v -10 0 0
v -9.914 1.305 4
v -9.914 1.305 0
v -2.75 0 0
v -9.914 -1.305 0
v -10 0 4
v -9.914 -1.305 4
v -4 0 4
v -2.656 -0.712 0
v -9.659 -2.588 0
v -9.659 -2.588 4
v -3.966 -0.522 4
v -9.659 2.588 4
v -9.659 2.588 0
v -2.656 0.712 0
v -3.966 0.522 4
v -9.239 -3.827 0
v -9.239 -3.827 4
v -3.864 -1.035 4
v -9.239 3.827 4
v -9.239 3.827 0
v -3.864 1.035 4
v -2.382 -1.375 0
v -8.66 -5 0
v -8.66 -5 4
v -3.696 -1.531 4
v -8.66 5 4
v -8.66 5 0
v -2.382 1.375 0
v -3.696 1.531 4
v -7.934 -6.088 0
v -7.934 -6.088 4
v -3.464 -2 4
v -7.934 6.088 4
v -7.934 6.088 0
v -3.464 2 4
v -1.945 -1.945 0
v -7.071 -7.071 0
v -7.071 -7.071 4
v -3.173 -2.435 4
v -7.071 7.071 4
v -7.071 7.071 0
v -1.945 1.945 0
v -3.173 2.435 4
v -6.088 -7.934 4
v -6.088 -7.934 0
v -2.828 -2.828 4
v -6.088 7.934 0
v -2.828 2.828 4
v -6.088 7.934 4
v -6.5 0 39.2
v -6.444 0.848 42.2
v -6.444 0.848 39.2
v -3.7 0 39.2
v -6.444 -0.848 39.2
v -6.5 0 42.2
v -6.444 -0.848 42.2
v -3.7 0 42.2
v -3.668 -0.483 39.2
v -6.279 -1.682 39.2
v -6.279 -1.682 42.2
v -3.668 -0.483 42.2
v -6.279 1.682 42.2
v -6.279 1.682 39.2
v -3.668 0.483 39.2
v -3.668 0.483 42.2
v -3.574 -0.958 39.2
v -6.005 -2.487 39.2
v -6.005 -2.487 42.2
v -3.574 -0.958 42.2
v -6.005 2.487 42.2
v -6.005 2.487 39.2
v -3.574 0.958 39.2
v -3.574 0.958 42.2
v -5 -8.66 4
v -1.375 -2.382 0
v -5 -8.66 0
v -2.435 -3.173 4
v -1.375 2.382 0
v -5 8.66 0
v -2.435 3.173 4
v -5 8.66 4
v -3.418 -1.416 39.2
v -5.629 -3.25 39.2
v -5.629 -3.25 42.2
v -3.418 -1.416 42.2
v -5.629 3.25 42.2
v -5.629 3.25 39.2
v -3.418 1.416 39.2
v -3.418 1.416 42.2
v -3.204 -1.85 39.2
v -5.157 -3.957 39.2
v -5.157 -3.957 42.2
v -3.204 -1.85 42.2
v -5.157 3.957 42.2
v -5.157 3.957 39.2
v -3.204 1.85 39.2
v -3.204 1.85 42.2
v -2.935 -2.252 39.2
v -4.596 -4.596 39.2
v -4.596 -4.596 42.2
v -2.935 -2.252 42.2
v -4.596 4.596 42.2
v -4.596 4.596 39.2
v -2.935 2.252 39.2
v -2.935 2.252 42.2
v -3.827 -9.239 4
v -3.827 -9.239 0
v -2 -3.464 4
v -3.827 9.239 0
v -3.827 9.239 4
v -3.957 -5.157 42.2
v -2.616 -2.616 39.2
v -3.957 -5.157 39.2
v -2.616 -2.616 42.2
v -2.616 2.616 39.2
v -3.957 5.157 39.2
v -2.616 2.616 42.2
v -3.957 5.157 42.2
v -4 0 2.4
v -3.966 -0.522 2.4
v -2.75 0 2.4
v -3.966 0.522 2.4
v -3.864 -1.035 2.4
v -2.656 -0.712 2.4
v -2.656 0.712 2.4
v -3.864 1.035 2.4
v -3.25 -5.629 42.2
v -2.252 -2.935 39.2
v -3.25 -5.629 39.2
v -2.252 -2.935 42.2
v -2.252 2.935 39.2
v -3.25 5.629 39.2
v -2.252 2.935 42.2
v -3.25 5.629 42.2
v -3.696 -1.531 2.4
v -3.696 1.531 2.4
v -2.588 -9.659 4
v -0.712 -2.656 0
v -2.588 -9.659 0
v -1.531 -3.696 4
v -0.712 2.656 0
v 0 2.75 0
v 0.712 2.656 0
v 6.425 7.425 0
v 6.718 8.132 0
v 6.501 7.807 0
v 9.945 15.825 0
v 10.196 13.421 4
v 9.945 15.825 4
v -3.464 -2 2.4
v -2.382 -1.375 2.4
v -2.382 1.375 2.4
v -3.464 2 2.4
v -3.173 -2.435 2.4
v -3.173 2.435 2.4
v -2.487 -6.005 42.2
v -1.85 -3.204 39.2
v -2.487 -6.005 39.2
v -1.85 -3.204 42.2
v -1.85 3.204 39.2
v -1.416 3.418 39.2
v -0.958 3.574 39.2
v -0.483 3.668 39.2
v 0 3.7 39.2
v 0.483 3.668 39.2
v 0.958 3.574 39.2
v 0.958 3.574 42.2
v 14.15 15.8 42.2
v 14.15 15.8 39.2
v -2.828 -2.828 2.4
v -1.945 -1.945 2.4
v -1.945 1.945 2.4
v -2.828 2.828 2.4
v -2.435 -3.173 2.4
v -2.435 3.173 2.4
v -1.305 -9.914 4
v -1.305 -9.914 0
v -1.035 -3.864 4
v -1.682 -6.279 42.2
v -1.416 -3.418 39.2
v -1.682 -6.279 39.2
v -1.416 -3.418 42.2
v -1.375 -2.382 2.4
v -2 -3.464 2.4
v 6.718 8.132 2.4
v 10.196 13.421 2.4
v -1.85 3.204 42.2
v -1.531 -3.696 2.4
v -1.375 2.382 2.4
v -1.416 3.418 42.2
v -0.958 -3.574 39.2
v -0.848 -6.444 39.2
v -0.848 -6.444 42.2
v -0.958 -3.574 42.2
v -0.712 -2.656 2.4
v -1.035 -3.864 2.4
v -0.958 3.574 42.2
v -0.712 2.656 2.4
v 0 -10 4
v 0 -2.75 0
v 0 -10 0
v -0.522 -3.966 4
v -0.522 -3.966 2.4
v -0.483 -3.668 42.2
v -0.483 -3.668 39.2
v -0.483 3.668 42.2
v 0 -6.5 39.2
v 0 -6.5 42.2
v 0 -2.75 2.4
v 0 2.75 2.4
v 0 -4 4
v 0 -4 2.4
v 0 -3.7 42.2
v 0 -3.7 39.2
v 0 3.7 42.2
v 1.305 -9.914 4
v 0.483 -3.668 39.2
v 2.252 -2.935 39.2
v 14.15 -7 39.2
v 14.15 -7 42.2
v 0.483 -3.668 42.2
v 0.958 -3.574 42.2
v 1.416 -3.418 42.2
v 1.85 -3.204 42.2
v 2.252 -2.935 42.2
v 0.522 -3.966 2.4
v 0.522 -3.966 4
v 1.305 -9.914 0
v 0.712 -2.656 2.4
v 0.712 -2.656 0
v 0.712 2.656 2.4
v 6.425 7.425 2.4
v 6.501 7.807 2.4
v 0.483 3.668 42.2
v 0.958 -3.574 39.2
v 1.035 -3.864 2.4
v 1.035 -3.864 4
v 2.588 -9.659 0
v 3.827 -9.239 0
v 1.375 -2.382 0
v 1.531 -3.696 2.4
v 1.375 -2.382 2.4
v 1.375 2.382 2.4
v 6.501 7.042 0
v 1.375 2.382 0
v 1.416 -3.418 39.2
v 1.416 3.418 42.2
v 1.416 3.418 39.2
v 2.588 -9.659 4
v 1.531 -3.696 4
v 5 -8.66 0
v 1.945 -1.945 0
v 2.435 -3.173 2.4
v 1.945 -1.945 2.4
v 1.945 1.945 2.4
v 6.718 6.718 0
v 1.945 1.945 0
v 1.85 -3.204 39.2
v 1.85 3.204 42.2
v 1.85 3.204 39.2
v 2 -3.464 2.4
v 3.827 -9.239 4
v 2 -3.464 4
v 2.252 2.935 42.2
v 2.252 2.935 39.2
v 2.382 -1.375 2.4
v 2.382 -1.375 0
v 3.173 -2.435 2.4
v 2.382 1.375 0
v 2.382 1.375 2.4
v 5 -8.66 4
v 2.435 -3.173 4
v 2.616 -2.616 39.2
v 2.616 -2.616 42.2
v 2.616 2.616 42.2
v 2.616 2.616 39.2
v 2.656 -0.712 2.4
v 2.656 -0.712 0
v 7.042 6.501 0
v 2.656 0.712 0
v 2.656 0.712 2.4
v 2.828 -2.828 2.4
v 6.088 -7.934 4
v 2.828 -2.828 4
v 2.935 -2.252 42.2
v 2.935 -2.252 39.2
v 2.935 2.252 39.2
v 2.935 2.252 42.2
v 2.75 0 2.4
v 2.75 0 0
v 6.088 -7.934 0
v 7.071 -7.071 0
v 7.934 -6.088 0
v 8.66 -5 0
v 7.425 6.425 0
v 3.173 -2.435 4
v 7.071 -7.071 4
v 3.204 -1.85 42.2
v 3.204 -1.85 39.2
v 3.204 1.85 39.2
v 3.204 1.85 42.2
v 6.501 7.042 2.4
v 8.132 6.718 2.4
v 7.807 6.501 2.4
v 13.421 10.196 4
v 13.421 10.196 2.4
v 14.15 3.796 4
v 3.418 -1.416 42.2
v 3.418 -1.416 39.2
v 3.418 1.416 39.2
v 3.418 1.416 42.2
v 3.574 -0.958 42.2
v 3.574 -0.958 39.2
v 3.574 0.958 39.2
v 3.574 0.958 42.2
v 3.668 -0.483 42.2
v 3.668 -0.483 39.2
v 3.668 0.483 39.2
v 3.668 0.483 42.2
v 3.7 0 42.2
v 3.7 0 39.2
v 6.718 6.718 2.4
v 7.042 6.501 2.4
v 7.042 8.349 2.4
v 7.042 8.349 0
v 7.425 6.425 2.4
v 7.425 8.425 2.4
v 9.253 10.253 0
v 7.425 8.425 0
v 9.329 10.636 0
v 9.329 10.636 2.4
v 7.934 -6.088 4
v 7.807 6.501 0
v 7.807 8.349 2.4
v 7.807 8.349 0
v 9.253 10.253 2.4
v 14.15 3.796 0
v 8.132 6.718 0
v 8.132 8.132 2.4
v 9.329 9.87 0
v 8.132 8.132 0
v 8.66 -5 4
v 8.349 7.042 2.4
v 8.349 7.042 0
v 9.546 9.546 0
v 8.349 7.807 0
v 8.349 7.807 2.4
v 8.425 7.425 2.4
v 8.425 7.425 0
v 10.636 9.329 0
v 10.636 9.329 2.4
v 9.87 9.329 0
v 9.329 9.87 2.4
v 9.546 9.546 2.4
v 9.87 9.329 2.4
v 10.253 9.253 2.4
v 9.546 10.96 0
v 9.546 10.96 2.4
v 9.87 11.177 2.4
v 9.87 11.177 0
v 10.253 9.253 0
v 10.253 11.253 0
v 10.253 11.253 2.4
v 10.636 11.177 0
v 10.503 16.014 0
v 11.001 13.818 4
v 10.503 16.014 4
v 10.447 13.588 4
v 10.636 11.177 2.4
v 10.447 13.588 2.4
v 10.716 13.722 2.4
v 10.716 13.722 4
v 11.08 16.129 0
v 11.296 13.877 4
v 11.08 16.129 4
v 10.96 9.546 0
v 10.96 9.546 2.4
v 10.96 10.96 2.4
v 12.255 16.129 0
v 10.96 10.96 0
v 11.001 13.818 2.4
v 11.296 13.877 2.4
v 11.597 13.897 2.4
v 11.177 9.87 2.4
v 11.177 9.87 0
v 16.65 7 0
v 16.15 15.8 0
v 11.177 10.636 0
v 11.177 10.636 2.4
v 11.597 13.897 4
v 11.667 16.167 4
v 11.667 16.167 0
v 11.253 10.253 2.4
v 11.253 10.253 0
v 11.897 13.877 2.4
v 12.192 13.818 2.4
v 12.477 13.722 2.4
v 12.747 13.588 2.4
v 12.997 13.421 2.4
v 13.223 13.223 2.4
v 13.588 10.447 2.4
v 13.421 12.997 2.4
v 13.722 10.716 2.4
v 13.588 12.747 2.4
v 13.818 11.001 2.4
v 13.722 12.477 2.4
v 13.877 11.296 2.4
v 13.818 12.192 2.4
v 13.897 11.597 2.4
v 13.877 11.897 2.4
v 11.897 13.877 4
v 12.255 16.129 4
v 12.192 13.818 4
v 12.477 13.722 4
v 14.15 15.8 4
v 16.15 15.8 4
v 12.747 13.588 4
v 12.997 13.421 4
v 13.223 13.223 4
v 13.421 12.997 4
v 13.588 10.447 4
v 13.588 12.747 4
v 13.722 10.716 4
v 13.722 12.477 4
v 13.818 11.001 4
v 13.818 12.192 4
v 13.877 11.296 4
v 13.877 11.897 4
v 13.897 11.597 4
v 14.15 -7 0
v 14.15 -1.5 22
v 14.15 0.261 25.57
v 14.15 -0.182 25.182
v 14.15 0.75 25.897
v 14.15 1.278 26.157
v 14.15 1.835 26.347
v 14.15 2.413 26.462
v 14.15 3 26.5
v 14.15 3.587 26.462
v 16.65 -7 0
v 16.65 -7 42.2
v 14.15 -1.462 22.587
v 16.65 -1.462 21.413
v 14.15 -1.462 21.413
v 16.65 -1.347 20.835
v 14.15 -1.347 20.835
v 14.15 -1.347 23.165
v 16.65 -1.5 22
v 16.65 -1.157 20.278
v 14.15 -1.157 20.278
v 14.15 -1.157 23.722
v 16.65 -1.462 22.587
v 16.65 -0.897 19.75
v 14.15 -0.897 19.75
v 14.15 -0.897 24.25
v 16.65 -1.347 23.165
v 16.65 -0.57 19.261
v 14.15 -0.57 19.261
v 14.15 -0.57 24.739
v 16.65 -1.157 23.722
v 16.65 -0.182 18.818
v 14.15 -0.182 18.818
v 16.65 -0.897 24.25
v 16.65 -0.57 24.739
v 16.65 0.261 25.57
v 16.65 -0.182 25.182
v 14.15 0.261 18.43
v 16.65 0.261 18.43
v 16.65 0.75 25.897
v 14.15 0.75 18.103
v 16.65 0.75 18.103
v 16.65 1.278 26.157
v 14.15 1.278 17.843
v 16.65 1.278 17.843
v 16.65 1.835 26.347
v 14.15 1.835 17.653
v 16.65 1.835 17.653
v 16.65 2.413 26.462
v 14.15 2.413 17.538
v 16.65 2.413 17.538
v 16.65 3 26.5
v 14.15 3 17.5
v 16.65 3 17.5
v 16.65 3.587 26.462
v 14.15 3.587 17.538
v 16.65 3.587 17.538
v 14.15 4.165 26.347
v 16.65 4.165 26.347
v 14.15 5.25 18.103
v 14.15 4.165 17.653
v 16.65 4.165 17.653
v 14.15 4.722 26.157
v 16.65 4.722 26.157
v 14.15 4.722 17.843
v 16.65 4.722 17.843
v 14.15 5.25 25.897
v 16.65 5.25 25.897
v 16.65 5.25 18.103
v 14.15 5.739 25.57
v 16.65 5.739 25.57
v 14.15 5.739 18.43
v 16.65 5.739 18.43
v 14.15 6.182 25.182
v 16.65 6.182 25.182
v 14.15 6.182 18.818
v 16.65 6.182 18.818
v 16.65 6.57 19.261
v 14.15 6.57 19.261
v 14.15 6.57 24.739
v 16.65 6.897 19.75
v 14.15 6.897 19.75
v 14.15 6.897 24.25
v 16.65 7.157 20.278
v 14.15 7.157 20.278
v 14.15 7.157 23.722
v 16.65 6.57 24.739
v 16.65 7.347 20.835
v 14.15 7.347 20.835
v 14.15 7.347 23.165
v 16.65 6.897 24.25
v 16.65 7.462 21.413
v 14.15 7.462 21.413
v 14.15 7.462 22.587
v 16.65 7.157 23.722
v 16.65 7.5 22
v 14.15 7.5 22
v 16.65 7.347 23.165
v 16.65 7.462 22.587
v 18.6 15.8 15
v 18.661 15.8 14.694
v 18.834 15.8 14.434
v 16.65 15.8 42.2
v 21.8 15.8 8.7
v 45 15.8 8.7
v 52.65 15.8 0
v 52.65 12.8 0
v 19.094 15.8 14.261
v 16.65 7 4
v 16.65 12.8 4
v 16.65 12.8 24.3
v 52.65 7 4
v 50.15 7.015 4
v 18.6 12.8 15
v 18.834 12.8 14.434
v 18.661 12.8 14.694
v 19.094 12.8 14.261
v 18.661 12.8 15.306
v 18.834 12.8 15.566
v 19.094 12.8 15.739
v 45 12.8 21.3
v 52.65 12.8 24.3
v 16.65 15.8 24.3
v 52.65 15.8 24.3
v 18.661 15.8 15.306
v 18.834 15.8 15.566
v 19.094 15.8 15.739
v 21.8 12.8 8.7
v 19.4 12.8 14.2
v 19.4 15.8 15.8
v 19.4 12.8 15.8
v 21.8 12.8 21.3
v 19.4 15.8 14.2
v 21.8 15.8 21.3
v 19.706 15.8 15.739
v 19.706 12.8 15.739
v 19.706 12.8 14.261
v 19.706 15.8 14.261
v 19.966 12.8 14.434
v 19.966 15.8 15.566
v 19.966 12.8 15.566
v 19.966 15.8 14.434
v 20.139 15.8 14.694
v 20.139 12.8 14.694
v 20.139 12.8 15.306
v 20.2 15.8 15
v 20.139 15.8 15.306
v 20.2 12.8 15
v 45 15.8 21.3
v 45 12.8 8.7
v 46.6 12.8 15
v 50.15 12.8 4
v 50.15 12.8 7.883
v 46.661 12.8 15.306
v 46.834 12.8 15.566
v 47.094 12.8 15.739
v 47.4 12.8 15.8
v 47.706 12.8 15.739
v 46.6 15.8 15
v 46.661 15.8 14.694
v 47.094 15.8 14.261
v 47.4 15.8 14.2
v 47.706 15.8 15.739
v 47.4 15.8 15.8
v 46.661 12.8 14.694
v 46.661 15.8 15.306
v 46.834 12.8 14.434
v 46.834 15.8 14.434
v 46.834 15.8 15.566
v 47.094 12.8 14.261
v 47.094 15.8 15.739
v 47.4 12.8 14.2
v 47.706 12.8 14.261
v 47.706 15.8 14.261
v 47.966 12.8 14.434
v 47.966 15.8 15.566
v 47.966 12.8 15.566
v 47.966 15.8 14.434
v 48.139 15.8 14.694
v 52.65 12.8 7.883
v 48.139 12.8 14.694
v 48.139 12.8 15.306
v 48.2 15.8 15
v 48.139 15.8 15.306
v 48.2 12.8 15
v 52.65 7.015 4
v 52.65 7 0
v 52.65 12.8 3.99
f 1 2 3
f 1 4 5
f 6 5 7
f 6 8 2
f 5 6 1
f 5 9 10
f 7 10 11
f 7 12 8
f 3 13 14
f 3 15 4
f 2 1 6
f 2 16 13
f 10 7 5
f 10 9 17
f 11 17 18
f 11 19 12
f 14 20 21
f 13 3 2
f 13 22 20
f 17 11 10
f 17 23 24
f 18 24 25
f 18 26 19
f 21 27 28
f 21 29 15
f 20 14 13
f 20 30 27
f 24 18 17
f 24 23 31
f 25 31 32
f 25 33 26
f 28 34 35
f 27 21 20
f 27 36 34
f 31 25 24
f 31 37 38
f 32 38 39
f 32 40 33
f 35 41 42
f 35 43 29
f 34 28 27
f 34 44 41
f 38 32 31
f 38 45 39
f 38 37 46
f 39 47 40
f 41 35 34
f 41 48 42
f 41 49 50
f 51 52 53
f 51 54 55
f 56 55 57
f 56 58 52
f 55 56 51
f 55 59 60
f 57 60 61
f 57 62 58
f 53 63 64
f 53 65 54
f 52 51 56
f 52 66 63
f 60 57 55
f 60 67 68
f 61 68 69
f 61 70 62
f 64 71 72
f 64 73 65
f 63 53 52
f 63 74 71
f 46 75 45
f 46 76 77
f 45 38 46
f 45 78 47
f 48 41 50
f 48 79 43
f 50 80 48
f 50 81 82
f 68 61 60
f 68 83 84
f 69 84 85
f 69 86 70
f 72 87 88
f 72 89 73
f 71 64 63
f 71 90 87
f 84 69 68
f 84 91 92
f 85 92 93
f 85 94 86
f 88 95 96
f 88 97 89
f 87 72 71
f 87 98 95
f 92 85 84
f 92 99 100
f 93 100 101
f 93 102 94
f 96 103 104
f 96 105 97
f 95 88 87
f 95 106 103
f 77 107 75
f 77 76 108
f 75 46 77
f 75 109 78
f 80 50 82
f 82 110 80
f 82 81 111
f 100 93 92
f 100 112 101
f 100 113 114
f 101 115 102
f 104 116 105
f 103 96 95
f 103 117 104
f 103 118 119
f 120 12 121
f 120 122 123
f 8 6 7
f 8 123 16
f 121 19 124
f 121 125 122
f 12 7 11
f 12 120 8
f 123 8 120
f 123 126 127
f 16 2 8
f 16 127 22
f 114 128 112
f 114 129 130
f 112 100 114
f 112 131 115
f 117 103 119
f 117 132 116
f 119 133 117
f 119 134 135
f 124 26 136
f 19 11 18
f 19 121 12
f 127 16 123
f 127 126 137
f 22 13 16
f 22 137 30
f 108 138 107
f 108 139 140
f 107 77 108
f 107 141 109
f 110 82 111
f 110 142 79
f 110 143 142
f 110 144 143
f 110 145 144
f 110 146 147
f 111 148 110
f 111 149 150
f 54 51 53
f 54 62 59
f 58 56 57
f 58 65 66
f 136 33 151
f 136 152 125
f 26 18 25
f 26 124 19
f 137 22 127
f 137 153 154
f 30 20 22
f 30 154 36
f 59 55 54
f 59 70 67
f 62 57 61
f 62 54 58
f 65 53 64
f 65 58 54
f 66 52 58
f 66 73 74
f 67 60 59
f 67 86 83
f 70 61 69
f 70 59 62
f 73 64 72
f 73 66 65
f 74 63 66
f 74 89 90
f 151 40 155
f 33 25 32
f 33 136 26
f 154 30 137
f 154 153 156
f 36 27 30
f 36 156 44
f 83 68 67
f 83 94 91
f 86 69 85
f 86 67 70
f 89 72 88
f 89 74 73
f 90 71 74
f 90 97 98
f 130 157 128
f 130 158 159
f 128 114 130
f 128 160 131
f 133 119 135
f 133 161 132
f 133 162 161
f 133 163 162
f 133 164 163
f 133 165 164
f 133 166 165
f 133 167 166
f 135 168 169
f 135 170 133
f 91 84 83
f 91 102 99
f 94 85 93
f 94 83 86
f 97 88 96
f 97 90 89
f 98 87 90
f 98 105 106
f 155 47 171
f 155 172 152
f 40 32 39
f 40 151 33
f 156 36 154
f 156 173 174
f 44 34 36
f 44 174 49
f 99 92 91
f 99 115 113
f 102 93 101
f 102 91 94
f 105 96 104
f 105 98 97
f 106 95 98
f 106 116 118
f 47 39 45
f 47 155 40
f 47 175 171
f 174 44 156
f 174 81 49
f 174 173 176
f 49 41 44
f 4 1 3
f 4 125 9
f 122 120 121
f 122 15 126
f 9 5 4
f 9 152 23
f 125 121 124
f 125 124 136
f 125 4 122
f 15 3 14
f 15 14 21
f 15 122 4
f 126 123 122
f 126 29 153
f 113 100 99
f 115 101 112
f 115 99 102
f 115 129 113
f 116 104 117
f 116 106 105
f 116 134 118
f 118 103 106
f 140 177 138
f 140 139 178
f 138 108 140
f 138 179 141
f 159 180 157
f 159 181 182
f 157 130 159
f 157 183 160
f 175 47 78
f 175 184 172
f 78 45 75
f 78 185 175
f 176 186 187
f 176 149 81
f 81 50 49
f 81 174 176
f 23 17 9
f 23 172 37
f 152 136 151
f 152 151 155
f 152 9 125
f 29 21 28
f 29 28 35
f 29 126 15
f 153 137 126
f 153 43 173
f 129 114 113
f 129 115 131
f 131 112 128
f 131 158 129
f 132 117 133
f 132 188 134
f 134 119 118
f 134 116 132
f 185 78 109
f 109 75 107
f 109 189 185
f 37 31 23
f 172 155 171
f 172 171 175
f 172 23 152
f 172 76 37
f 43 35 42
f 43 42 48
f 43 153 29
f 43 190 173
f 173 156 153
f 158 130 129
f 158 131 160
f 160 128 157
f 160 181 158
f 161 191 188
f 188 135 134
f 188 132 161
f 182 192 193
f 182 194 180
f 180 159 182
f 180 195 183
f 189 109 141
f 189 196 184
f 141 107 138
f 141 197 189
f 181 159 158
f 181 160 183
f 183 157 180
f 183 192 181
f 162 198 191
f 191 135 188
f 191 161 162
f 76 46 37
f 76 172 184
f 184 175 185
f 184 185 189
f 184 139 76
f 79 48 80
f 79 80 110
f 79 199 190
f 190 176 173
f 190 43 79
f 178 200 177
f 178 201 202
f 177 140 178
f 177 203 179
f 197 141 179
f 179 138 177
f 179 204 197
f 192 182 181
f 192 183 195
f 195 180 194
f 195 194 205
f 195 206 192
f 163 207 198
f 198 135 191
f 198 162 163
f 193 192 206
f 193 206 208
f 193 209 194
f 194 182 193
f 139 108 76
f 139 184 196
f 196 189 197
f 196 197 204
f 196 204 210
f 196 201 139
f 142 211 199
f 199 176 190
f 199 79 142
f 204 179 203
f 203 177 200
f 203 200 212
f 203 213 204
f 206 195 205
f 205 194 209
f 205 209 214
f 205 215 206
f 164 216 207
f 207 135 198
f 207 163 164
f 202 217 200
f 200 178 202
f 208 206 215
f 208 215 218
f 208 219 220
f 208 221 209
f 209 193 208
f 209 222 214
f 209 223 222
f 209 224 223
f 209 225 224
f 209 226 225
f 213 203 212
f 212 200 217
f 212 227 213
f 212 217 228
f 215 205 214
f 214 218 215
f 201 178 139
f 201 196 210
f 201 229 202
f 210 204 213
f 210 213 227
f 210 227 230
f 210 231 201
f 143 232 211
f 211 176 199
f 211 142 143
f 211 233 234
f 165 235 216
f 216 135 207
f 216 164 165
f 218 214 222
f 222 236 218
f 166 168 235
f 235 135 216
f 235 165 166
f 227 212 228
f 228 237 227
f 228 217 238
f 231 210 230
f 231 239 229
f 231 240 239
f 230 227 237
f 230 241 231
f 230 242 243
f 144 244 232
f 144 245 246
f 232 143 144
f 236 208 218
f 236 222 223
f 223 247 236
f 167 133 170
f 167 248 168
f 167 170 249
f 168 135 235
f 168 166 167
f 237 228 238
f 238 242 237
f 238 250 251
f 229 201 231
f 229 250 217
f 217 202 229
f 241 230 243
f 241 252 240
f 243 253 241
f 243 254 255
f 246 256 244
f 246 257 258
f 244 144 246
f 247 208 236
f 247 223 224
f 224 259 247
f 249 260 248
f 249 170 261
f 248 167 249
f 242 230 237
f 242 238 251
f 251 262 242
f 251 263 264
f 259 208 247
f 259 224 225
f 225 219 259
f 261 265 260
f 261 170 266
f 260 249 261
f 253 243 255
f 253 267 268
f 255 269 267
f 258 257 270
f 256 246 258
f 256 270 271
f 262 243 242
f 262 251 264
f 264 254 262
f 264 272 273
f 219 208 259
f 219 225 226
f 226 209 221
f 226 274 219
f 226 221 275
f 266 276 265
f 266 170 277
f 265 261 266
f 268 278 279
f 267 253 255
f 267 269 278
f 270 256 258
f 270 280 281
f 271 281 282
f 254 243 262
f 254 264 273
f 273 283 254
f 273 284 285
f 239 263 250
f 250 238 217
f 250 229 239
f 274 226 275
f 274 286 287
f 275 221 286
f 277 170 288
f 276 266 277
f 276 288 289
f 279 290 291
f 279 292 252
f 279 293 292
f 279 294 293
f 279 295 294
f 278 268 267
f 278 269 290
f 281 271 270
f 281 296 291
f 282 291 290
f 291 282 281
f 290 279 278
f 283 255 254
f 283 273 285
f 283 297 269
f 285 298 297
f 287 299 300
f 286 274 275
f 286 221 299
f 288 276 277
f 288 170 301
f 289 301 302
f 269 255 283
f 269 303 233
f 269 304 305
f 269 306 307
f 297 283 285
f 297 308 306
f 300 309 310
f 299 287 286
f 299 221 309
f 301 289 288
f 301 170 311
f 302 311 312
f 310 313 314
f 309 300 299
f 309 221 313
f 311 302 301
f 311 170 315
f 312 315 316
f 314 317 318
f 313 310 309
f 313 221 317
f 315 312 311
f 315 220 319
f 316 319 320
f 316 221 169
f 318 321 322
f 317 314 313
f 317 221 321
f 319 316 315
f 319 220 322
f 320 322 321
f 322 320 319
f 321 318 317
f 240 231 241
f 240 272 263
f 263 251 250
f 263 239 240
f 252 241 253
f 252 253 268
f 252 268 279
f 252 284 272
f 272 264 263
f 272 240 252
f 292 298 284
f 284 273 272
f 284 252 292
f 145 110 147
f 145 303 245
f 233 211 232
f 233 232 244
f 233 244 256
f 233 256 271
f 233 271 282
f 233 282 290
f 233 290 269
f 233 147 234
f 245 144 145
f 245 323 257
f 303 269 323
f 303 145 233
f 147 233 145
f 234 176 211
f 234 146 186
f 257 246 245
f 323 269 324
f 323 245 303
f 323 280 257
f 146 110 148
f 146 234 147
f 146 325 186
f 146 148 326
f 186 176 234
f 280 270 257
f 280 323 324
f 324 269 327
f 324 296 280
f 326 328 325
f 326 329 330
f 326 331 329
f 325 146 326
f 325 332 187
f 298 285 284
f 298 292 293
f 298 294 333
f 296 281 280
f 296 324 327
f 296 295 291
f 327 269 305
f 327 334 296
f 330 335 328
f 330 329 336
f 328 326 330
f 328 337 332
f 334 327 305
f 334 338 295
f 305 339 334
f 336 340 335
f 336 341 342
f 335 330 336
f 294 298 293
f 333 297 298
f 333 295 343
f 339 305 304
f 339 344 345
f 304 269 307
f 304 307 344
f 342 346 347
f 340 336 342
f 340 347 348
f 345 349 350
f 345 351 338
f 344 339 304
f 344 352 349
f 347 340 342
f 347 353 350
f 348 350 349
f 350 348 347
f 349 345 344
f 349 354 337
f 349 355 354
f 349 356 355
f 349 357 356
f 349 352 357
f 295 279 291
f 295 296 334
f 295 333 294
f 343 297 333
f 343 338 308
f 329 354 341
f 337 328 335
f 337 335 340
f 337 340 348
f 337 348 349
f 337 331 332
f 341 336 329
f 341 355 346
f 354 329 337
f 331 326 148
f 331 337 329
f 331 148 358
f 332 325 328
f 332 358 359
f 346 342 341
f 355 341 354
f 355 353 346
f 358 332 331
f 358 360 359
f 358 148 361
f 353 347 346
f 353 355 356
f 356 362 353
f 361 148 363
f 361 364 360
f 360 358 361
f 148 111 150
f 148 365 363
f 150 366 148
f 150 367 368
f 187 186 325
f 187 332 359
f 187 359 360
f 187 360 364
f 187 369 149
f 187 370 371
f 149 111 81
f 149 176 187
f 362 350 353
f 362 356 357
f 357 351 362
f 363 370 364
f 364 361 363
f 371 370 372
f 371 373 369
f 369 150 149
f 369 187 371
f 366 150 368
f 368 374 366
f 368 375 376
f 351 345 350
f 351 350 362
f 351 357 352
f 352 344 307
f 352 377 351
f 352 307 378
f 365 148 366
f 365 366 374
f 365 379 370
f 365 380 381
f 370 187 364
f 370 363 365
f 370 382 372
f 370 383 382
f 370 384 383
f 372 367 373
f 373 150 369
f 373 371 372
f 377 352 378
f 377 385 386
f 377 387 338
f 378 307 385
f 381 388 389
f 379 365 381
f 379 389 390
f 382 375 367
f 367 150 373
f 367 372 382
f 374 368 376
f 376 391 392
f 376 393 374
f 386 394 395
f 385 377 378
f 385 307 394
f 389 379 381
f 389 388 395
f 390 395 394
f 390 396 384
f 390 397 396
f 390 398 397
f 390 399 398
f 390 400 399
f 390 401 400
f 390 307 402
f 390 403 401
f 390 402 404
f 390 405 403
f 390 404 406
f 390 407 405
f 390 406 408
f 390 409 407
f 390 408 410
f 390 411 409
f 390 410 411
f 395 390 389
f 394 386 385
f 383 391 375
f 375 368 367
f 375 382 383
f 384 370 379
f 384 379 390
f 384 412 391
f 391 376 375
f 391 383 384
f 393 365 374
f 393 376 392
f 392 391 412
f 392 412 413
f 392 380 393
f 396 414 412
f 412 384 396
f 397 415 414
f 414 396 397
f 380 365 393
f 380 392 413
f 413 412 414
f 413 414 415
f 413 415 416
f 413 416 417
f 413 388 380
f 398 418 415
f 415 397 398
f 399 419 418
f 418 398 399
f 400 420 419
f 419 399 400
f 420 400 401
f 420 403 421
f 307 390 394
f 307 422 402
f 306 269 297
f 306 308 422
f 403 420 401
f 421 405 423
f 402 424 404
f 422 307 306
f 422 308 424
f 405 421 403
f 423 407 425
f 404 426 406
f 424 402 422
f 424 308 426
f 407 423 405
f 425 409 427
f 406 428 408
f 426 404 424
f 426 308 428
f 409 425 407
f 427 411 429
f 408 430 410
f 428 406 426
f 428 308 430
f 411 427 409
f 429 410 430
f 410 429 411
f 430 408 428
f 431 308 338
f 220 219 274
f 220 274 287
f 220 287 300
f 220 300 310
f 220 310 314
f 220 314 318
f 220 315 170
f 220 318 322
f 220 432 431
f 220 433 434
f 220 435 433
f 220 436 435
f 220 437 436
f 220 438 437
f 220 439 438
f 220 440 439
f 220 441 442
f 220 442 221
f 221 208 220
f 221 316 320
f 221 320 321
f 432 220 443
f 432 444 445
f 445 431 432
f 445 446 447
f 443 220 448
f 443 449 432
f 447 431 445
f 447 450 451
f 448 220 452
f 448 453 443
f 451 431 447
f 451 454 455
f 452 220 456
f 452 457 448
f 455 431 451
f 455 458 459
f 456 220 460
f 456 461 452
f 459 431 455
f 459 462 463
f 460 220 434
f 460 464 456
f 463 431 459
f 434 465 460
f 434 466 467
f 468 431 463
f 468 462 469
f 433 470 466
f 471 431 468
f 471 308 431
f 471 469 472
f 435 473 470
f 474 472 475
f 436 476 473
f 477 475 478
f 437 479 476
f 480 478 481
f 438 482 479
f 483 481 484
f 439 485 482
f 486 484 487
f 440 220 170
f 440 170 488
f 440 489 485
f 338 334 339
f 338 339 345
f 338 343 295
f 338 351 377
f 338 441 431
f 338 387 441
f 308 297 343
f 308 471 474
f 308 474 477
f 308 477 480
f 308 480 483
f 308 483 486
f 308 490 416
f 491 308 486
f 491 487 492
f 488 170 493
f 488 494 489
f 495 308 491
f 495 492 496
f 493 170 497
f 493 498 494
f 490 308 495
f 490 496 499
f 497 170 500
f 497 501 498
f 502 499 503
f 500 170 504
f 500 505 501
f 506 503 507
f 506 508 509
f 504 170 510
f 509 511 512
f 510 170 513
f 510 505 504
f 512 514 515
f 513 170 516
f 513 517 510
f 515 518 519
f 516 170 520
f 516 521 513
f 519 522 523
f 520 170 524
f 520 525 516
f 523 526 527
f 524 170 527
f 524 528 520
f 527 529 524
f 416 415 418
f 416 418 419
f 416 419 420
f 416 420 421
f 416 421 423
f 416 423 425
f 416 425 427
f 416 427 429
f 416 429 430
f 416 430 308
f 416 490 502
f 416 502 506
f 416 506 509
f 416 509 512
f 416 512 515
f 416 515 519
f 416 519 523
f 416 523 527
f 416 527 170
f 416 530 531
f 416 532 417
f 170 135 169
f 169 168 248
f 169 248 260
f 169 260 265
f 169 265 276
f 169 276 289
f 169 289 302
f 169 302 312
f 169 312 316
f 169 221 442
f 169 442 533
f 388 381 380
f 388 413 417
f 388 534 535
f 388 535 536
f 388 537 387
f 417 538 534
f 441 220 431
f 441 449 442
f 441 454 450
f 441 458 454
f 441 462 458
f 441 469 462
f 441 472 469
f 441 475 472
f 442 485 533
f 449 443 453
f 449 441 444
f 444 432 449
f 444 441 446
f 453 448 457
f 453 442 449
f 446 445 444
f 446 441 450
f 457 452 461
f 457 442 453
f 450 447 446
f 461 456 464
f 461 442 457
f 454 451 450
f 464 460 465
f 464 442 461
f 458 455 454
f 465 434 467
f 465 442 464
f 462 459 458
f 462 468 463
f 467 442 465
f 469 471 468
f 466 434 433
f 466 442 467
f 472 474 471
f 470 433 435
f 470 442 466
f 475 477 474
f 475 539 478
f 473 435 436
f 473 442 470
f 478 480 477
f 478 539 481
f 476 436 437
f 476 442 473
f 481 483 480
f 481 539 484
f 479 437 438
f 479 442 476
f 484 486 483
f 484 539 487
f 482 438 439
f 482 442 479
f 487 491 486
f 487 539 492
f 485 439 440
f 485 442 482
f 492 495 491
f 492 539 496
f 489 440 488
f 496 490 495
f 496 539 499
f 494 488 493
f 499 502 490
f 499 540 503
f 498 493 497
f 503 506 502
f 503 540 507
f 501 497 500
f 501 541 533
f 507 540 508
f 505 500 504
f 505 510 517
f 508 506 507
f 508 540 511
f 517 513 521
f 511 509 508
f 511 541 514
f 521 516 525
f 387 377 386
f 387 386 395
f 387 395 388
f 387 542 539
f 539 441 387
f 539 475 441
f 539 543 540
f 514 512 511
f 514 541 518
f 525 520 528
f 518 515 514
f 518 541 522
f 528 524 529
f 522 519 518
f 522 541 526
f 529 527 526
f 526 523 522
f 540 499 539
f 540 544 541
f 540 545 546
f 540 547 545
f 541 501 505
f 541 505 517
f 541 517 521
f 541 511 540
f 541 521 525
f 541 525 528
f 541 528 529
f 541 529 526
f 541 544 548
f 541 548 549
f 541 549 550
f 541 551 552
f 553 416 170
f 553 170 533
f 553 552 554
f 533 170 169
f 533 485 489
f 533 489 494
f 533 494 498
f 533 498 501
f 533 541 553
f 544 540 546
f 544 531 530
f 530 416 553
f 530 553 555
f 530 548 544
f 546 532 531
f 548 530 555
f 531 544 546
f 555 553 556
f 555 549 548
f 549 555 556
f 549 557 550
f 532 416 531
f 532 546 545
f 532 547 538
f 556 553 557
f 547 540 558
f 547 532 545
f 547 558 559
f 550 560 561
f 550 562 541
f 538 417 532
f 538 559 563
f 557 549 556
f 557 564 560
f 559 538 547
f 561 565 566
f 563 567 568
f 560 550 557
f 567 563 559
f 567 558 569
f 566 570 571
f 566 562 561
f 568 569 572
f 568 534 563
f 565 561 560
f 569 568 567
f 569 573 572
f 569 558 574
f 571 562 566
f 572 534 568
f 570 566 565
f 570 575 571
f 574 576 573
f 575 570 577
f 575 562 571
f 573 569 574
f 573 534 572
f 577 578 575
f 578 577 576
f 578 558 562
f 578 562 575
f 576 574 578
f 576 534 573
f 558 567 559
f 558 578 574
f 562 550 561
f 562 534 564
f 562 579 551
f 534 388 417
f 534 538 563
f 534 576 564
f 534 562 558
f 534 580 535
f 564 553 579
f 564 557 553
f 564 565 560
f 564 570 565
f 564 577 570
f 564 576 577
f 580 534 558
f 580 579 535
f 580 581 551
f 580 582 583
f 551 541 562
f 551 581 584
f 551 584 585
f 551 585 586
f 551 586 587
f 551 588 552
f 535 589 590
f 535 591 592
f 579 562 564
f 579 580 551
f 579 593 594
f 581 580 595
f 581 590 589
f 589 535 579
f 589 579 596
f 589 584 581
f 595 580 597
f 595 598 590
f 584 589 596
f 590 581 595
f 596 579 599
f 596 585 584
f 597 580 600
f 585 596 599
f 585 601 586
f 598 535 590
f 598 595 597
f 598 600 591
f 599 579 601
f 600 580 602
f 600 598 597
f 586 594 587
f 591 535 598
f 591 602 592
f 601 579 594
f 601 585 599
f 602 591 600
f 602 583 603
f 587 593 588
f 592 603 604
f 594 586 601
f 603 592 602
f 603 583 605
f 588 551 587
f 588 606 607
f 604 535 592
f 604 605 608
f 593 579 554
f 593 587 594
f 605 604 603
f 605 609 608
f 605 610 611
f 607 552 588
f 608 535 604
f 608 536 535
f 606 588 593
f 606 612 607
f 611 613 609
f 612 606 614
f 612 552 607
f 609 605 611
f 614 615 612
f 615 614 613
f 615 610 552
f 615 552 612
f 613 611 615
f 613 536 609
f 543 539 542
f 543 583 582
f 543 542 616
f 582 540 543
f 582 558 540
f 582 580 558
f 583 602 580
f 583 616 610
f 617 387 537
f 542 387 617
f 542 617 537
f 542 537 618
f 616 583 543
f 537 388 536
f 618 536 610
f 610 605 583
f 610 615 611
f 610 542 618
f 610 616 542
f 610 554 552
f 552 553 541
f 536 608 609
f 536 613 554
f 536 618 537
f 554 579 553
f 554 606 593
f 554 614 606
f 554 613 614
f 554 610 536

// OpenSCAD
// file: params.scad
// 18 舵机六足 · 3D 打印机身 · 共享参数和公共模块（本文件自己不导出 STL）
//
// 腿的几何尺寸和固件 firmware/hexapod_g7pro/params.h 的默认值一一对应：
//   coxa_len ↔ coxa    femur_len ↔ femur    tibia_len ↔ tibia
//   front_x / front_y / front_angle / mid_y / rear_x / rear_y / rear_angle 同名
// 所以打印这套机身，固件的腿长和安装位置参数都不用改。
//
// 坐标约定（和固件一致）：
//   机身坐标：X+ = 前，Y+ = 左，Z+ = 上，原点 = 机身中心，高度原点 = 大腿舵机轴。
//   腿坐标：原点 = 基节转轴，X+ = 腿朝外，Y+ = 逆时针一侧，Z+ = 上。
// 6 条腿的零件完全一样（不分左右），左右舵机转向的差别由固件里的 dir 参数处理。

/* [舵机 MG90S（量你自己的）] */
servo_w = 12.2;           // 机身宽度 (mm)
servo_l = 22.8;           // 机身长度，沿安装耳方向 (mm)
ear_span = 32.5;          // 两个安装耳外端之间的总长 (mm)
ear_hole_spacing = 28.0;  // 两个安装孔的中心距 (mm)
ear_z = 15.9;             // 机壳底面 → 安装耳下表面 (mm)
ear_t = 2.5;              // 安装耳厚度 (mm)
case_h = 22.7;            // 机壳底面 → 机壳顶面（不含输出轴）(mm)
shaft_off = 5.4;          // 输出轴中心 → 机身中心，沿长度方向 (mm)
shaft_gap = 4.0;          // 机壳顶面 → 舵机臂贴合面 (mm)

/* [舵机臂（单边臂，量你自己的）] */
horn_hub_d = 7.6;         // 舵机臂中心圆盘直径 (mm)
horn_len = 18.5;          // 中心 → 臂尖 (mm)
horn_w_hub = 6.2;         // 臂根宽度 (mm)
horn_w_tip = 4.2;         // 臂尖宽度 (mm)
horn_t = 1.6;             // 臂厚 = 零件上凹槽深度 (mm)
horn_holes = [10.5, 14.5];// 固定舵机臂的两个孔到中心的距离 (mm)
horn_screw_access = 5.5;  // 中心过孔：舵机臂中心螺丝和螺丝刀从这里进 (mm)

/* [腿的几何（和固件 params.h 一致）] */
coxa_len = 28;            // 基节转轴 → 大腿舵机轴 (mm)
femur_len = 50;           // 大腿舵机轴 → 小腿舵机轴 (mm)
tibia_len = 75;           // 小腿舵机轴 → 脚尖 (mm)
front_x = 60; front_y = 40; front_angle = 45;
mid_y = 55;
rear_x = 60; rear_y = 40; rear_angle = 135;

/* [打印余量和螺丝] */
clearance = 0.4;          // 方孔比舵机大多少 (mm)；太紧改 0.5
screw_pilot = 1.6;        // M2 自攻螺丝底孔（舵机安装耳）(mm)
horn_screw_hole = 2.0;    // 舵机臂固定螺丝过孔 (mm)
m3_hole = 3.4;            // M3 通孔 (mm)

/* [机身] */
plate_t = 3.0;            // 底板 / 甲板厚度 (mm)
standoff_h = 25;          // 底板和甲板之间的 M3 铜柱长度 (mm)
bar_t = 4.0;              // 大腿板厚度 (mm)
mount_t = 3.0;            // 舵机安装板厚度 (mm)
coxa_horn_z = 11;         // 基节舵机臂贴合面高度（相对大腿轴）(mm)

/* [Hidden] */
// 6 条腿：[髋轴 X, 髋轴 Y, 朝向°]，顺序 LF LM LR RF RM RR（和固件 leg 0..5 一致）
legs = [
  [ front_x,  front_y,  front_angle],
  [ 0,        mid_y,    90],
  [-rear_x,   rear_y,   rear_angle],
  [ front_x, -front_y, -front_angle],
  [ 0,       -mid_y,   -90],
  [-rear_x,  -rear_y,  -rear_angle]
];
leg_names = ["LF", "LM", "LR", "RF", "RM", "RR"];

pocket_w = servo_w + clearance;
pocket_l = servo_l + clearance;
// 舵机本地坐标：输出轴 = +Z，舵机臂贴合面在 z = 0，机身沿 +X 伸出（机身中心 x = shaft_off）
ear_low = -shaft_gap - case_h + ear_z;       // 安装耳“朝机壳底”的那一面，安装板贴在这里
plate_top_z = coxa_horn_z + ear_low;         // 底板上表面高度（相对大腿轴）
deck_z = plate_top_z + standoff_h;           // 甲板下表面高度

module at_leg(l) translate([l[0], l[1]]) rotate(l[2]) children();

// 舵机实体（装配预览 / 干涉检查用）
module servo_body() {
  color("DimGray") {
    translate([shaft_off - servo_l / 2, -servo_w / 2, -shaft_gap - case_h]) cube([servo_l, servo_w, case_h]);
    // 耳朵和输出轴都留 0.05 mm，避免“刚好贴着”被干涉检查当成碰撞
    translate([shaft_off - ear_span / 2, -servo_w / 2, ear_low + 0.05]) cube([ear_span, servo_w, ear_t - 0.05]);
    translate([0, 0, -shaft_gap]) cylinder(d = 5, h = shaft_gap - 0.05);
  }
}

// 安装板上的舵机方孔 + 两个安装耳螺丝底孔（在舵机本地坐标里，穿过安装板）
module servo_mount_cut() {
  translate([shaft_off - pocket_l / 2, -pocket_w / 2, ear_low - mount_t - 1]) cube([pocket_l, pocket_w, mount_t + 2]);
  for (s = [-1, 1]) translate([shaft_off + s * ear_hole_spacing / 2, 0, ear_low - mount_t - 1])
    cylinder(d = screw_pilot, h = mount_t + 2, $fn = 16);
}

// 单边舵机臂的 2D 外形：中心在原点，臂沿 +X
module horn_2d(extra = 0) {
  hull() {
    circle(d = horn_hub_d + extra);
    translate([0, -(horn_w_hub + extra) / 2]) square([0.01, horn_w_hub + extra]);
    translate([horn_len - horn_w_tip / 2, 0]) circle(d = horn_w_tip + extra);
  }
}

// 舵机臂凹槽：从 z = 0 往 +Z 挖 horn_t 深，加中心过孔和两个螺丝过孔（贯穿 depth）
module horn_cut(depth) {
  translate([0, 0, -0.01]) linear_extrude(horn_t + 0.01) horn_2d(clearance);
  translate([0, 0, -1]) cylinder(d = horn_screw_access, h = depth + 2, $fn = 24);
  for (r = horn_holes) translate([r, 0, -1]) cylinder(d = horn_screw_hole, h = depth + 2, $fn = 16);
}
// main file
// 基节支架 coxa：打 6 个（6 条腿通用）。顶板朝下放，竖板朝上。
include <parts.scad>
translate([0, 0, coxa_horn_z + top_t]) rotate([180, 0, 0]) coxa_bracket();
